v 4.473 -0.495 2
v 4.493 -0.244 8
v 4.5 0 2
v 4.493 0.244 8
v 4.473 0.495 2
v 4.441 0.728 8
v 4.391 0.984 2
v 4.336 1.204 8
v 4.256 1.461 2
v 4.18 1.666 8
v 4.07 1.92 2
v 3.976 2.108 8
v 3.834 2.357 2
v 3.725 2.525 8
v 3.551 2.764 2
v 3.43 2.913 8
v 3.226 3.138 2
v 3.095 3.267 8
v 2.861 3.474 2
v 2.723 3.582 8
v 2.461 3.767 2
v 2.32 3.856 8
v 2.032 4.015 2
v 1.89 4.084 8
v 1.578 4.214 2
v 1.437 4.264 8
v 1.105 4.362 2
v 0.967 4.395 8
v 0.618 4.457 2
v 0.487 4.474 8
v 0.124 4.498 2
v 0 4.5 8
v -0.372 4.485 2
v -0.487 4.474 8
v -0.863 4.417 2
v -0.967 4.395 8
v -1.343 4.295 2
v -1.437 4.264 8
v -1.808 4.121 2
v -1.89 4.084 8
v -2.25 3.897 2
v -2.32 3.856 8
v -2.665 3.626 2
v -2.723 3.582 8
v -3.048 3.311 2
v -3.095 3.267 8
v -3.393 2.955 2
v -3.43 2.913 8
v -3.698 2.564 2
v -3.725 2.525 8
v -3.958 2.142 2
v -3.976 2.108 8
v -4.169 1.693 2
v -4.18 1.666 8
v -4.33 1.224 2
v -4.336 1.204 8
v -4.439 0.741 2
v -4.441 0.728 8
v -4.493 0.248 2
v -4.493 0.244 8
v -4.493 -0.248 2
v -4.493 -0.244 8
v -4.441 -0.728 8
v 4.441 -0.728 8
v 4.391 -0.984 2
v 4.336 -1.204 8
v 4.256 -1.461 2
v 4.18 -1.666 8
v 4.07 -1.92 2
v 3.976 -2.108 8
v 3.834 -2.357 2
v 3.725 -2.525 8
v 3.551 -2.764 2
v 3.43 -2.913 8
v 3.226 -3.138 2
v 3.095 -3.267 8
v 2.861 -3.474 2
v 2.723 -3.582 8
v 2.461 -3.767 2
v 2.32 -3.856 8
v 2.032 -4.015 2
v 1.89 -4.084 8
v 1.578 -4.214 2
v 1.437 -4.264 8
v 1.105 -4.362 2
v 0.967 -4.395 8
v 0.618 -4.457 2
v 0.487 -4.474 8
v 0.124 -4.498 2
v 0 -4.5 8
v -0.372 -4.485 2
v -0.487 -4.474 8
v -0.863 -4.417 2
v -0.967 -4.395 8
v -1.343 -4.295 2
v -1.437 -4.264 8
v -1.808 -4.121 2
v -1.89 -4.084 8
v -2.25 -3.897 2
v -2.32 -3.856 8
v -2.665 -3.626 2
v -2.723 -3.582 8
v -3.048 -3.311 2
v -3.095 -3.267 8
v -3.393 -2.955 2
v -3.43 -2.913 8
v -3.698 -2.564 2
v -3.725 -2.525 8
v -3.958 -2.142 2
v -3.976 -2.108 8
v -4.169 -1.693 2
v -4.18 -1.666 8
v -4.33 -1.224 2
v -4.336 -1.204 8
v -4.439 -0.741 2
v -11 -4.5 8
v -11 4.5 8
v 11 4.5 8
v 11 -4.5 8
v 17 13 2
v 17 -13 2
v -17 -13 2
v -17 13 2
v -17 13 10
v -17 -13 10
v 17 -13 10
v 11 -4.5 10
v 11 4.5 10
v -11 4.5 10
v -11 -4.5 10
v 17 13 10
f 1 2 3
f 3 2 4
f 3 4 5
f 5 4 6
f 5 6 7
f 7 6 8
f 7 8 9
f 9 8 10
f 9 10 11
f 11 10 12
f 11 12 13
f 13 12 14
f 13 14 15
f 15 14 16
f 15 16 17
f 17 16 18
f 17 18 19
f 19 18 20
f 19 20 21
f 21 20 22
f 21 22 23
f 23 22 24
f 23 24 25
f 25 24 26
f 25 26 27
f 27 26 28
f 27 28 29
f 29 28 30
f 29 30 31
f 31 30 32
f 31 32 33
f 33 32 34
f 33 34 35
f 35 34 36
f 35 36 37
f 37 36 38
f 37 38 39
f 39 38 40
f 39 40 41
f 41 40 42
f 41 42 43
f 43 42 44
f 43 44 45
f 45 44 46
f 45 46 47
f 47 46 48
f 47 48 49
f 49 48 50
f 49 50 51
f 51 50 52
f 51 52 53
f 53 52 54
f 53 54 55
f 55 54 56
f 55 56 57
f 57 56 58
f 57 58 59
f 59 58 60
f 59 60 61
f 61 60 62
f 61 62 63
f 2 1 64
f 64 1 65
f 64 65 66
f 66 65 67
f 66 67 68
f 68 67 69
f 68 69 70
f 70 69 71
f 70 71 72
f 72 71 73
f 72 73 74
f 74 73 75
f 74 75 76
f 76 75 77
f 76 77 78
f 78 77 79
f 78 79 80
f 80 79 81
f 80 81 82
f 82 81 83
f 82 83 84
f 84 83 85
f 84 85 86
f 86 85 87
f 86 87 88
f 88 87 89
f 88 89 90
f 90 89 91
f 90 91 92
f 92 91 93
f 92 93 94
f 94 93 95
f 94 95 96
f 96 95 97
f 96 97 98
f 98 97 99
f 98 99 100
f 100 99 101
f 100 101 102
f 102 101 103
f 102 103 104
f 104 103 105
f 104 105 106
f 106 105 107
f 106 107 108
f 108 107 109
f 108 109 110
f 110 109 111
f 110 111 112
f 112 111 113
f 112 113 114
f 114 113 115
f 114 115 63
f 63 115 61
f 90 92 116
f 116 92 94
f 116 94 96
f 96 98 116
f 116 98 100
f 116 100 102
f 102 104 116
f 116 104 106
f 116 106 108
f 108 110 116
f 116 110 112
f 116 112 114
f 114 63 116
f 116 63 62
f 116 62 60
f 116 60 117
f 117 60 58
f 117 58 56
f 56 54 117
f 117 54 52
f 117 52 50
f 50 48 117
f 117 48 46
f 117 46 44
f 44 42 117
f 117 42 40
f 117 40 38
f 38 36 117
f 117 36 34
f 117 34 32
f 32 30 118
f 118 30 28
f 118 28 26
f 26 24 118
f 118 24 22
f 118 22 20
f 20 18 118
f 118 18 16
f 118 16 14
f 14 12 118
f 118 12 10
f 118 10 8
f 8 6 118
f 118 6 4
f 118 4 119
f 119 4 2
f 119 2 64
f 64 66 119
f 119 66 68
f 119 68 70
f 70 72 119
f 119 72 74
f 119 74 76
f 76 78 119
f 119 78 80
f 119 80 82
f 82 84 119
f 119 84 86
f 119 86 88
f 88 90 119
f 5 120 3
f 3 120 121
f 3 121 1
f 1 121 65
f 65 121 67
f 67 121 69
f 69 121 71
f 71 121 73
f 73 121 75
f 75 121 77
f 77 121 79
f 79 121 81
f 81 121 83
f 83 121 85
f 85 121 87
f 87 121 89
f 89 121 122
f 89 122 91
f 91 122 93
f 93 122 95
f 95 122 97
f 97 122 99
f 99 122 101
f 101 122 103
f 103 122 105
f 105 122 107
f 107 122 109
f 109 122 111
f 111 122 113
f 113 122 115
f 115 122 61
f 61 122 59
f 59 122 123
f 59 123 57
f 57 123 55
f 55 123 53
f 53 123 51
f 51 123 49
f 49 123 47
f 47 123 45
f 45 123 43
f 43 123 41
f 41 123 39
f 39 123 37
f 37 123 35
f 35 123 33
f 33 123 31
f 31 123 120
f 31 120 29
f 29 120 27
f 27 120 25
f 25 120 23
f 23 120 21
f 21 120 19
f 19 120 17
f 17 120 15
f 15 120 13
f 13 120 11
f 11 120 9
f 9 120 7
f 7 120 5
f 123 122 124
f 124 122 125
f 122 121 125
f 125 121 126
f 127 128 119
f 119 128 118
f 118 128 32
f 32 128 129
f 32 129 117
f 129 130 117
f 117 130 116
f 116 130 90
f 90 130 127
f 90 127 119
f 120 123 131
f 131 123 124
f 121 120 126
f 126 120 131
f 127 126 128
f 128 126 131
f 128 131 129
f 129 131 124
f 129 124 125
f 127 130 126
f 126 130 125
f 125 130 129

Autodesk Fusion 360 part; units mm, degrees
sketch "Sketch1" plane through (0, 0, 0) normal (0, 0, 1) x (1, 0, 0)
  circle A0 centre (0, 0) radius 4.5 construction
  line L0 (-11, 4.5) -> (11, 4.5) construction
  line L1 (11, 4.5) -> (11, -4.5) construction
  line L2 (11, -4.5) -> (-11, -4.5) construction
  line L3 (-11, -4.5) -> (-11, 4.5) construction
  line L4 (-17, 13) -> (17, 13)
  line L5 (17, 13) -> (17, -13)
  line L6 (17, -13) -> (-17, -13)
  line L7 (-17, -13) -> (-17, 13)
  dimension "d1" = 9
  dimension "d2" = 22
  dimension "d3" = 9
  dimension "d4" = 11
  dimension "d5" = 4.5
  dimension "d6" = 34
  dimension "d7" = 26
  dimension "d8" = 13
  dimension "d9" = 17
extrude "Extrude1" add sketch "Sketch1" along normal blind 10
sketch "Sketch2" plane through (0, 0, 10) normal (0, 0, 1) x (-1, 0, 0)
  line L0 (17, 13) -> (-17, 13)
  line L1 (-17, 13) -> (-17, -13)
  line L2 (-17, -13) -> (17, -13)
  line L3 (17, -13) -> (17, 13)
  line L4 (11, -4.5) -> (-11, -4.5)
  line L5 (-11, -4.5) -> (-11, 4.5)
  line L6 (-11, 4.5) -> (11, 4.5)
  line L7 (11, 4.5) -> (11, -4.5)
  dimension "d12" = 22
  dimension "d13" = 9
  dimension "d14" = 11
  dimension "d15" = 4.5
extrude "Extrude2" cut sketch "Sketch2" against normal blind 2 contours L4 L5 L6 L7
extrude "Extrude3" cut 1 faces at (-5.6667, 4.3333, 0) along direction (0, 0, 1) blind 2
sketch "Sketch3" plane through (0, 0, 8) normal (0, 0, 1) x (-1, 0, 0)
  line L0 (11, 4.5) -> (-11, 4.5)
  line L1 (-11, 4.5) -> (-11, -4.5)
  line L2 (-11, -4.5) -> (11, -4.5)
  line L3 (11, -4.5) -> (11, 4.5)
  circle A0 centre (0, 0) radius 4.5
  dimension "d20" = 9
extrude "Extrude4" cut sketch "Sketch3" against normal blind 26 contours A0
